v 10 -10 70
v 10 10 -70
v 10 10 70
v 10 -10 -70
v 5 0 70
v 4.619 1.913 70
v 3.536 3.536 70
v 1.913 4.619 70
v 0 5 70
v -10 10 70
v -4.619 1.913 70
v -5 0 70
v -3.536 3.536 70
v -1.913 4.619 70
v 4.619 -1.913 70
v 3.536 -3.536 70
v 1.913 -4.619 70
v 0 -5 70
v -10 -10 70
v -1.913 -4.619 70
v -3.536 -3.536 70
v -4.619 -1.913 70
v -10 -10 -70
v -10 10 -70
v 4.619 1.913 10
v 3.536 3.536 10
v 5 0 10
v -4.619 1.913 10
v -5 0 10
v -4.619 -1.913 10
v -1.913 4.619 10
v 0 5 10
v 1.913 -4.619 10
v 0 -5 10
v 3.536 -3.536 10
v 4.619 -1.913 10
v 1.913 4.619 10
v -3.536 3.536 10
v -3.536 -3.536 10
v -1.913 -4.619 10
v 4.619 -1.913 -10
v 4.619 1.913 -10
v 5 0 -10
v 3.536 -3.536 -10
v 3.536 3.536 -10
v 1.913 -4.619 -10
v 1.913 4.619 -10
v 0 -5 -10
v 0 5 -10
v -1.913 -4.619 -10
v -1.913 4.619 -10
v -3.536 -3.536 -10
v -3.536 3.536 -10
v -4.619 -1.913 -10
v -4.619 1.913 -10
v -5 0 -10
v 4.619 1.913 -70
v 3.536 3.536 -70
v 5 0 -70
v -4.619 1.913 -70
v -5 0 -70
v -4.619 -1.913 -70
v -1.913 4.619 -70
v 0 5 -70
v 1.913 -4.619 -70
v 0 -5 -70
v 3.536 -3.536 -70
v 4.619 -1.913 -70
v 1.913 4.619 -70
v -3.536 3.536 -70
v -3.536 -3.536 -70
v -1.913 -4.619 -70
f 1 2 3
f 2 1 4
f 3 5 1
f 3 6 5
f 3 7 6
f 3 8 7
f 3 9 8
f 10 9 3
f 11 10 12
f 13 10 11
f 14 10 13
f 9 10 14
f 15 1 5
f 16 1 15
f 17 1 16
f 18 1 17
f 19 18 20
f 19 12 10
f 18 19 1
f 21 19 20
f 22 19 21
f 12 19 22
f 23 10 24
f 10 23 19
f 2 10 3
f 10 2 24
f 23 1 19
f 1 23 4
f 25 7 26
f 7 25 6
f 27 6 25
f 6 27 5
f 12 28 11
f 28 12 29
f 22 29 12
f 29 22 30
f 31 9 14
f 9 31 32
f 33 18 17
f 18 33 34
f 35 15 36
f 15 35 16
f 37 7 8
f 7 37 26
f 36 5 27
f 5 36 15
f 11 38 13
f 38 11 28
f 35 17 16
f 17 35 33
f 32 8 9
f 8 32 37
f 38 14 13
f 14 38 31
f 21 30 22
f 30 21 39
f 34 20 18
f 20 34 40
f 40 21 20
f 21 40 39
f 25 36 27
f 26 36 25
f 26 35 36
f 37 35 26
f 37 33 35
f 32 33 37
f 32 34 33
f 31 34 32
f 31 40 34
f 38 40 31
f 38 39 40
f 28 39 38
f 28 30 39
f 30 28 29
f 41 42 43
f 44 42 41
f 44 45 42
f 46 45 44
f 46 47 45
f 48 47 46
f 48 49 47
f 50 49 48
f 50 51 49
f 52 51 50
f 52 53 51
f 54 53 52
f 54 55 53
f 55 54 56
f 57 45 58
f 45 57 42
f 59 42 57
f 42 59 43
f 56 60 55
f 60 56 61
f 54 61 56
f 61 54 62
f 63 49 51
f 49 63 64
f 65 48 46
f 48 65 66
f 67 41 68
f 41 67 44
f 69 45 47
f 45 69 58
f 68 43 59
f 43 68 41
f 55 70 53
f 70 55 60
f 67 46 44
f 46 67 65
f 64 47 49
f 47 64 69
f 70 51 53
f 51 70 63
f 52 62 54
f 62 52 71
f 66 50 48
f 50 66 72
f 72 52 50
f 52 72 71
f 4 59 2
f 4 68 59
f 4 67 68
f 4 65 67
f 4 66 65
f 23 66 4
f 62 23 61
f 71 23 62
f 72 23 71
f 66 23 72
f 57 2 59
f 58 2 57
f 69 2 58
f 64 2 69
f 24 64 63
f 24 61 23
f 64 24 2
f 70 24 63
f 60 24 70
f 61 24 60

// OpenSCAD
// Define dimensions
cube_size = 20; // Size of the cube
hole_diameter = 10; // Diameter of the cylindrical hole
hole_radius = hole_diameter / 2; // Radius of the cylindrical hole
layer_height = cube_size; // Height of each layer

// Function to create a cube block with a cylindrical hole
module cube_block_with_cylindrical_hole() {
    difference() {
        cube([cube_size, cube_size, cube_size], center = true);
        cylinder(r = hole_radius, h = cube_size * 2, center = true); // Smooth and uniform cylindrical hole
    }
}

// Function to create a solid cube block
module empty_cube_block() {
    cube([cube_size, cube_size, cube_size], center = true);
}

// Assemble the model based on the graph_dict
translate([0, 0, layer_height * 3]) cube_block_with_cylindrical_hole(); // Layer 1
translate([0, 0, layer_height * 2]) cube_block_with_cylindrical_hole(); // Layer 2
translate([0, 0, layer_height * 1]) cube_block_with_cylindrical_hole(); // Layer 3
translate([0, 0, 0]) empty_cube_block(); // Layer 4
translate([0, 0, -layer_height * 1]) cube_block_with_cylindrical_hole(); // Layer 5
translate([0, 0, -layer_height * 2]) cube_block_with_cylindrical_hole(); // Layer 6
translate([0, 0, -layer_height * 3]) cube_block_with_cylindrical_hole(); // Layer 7
